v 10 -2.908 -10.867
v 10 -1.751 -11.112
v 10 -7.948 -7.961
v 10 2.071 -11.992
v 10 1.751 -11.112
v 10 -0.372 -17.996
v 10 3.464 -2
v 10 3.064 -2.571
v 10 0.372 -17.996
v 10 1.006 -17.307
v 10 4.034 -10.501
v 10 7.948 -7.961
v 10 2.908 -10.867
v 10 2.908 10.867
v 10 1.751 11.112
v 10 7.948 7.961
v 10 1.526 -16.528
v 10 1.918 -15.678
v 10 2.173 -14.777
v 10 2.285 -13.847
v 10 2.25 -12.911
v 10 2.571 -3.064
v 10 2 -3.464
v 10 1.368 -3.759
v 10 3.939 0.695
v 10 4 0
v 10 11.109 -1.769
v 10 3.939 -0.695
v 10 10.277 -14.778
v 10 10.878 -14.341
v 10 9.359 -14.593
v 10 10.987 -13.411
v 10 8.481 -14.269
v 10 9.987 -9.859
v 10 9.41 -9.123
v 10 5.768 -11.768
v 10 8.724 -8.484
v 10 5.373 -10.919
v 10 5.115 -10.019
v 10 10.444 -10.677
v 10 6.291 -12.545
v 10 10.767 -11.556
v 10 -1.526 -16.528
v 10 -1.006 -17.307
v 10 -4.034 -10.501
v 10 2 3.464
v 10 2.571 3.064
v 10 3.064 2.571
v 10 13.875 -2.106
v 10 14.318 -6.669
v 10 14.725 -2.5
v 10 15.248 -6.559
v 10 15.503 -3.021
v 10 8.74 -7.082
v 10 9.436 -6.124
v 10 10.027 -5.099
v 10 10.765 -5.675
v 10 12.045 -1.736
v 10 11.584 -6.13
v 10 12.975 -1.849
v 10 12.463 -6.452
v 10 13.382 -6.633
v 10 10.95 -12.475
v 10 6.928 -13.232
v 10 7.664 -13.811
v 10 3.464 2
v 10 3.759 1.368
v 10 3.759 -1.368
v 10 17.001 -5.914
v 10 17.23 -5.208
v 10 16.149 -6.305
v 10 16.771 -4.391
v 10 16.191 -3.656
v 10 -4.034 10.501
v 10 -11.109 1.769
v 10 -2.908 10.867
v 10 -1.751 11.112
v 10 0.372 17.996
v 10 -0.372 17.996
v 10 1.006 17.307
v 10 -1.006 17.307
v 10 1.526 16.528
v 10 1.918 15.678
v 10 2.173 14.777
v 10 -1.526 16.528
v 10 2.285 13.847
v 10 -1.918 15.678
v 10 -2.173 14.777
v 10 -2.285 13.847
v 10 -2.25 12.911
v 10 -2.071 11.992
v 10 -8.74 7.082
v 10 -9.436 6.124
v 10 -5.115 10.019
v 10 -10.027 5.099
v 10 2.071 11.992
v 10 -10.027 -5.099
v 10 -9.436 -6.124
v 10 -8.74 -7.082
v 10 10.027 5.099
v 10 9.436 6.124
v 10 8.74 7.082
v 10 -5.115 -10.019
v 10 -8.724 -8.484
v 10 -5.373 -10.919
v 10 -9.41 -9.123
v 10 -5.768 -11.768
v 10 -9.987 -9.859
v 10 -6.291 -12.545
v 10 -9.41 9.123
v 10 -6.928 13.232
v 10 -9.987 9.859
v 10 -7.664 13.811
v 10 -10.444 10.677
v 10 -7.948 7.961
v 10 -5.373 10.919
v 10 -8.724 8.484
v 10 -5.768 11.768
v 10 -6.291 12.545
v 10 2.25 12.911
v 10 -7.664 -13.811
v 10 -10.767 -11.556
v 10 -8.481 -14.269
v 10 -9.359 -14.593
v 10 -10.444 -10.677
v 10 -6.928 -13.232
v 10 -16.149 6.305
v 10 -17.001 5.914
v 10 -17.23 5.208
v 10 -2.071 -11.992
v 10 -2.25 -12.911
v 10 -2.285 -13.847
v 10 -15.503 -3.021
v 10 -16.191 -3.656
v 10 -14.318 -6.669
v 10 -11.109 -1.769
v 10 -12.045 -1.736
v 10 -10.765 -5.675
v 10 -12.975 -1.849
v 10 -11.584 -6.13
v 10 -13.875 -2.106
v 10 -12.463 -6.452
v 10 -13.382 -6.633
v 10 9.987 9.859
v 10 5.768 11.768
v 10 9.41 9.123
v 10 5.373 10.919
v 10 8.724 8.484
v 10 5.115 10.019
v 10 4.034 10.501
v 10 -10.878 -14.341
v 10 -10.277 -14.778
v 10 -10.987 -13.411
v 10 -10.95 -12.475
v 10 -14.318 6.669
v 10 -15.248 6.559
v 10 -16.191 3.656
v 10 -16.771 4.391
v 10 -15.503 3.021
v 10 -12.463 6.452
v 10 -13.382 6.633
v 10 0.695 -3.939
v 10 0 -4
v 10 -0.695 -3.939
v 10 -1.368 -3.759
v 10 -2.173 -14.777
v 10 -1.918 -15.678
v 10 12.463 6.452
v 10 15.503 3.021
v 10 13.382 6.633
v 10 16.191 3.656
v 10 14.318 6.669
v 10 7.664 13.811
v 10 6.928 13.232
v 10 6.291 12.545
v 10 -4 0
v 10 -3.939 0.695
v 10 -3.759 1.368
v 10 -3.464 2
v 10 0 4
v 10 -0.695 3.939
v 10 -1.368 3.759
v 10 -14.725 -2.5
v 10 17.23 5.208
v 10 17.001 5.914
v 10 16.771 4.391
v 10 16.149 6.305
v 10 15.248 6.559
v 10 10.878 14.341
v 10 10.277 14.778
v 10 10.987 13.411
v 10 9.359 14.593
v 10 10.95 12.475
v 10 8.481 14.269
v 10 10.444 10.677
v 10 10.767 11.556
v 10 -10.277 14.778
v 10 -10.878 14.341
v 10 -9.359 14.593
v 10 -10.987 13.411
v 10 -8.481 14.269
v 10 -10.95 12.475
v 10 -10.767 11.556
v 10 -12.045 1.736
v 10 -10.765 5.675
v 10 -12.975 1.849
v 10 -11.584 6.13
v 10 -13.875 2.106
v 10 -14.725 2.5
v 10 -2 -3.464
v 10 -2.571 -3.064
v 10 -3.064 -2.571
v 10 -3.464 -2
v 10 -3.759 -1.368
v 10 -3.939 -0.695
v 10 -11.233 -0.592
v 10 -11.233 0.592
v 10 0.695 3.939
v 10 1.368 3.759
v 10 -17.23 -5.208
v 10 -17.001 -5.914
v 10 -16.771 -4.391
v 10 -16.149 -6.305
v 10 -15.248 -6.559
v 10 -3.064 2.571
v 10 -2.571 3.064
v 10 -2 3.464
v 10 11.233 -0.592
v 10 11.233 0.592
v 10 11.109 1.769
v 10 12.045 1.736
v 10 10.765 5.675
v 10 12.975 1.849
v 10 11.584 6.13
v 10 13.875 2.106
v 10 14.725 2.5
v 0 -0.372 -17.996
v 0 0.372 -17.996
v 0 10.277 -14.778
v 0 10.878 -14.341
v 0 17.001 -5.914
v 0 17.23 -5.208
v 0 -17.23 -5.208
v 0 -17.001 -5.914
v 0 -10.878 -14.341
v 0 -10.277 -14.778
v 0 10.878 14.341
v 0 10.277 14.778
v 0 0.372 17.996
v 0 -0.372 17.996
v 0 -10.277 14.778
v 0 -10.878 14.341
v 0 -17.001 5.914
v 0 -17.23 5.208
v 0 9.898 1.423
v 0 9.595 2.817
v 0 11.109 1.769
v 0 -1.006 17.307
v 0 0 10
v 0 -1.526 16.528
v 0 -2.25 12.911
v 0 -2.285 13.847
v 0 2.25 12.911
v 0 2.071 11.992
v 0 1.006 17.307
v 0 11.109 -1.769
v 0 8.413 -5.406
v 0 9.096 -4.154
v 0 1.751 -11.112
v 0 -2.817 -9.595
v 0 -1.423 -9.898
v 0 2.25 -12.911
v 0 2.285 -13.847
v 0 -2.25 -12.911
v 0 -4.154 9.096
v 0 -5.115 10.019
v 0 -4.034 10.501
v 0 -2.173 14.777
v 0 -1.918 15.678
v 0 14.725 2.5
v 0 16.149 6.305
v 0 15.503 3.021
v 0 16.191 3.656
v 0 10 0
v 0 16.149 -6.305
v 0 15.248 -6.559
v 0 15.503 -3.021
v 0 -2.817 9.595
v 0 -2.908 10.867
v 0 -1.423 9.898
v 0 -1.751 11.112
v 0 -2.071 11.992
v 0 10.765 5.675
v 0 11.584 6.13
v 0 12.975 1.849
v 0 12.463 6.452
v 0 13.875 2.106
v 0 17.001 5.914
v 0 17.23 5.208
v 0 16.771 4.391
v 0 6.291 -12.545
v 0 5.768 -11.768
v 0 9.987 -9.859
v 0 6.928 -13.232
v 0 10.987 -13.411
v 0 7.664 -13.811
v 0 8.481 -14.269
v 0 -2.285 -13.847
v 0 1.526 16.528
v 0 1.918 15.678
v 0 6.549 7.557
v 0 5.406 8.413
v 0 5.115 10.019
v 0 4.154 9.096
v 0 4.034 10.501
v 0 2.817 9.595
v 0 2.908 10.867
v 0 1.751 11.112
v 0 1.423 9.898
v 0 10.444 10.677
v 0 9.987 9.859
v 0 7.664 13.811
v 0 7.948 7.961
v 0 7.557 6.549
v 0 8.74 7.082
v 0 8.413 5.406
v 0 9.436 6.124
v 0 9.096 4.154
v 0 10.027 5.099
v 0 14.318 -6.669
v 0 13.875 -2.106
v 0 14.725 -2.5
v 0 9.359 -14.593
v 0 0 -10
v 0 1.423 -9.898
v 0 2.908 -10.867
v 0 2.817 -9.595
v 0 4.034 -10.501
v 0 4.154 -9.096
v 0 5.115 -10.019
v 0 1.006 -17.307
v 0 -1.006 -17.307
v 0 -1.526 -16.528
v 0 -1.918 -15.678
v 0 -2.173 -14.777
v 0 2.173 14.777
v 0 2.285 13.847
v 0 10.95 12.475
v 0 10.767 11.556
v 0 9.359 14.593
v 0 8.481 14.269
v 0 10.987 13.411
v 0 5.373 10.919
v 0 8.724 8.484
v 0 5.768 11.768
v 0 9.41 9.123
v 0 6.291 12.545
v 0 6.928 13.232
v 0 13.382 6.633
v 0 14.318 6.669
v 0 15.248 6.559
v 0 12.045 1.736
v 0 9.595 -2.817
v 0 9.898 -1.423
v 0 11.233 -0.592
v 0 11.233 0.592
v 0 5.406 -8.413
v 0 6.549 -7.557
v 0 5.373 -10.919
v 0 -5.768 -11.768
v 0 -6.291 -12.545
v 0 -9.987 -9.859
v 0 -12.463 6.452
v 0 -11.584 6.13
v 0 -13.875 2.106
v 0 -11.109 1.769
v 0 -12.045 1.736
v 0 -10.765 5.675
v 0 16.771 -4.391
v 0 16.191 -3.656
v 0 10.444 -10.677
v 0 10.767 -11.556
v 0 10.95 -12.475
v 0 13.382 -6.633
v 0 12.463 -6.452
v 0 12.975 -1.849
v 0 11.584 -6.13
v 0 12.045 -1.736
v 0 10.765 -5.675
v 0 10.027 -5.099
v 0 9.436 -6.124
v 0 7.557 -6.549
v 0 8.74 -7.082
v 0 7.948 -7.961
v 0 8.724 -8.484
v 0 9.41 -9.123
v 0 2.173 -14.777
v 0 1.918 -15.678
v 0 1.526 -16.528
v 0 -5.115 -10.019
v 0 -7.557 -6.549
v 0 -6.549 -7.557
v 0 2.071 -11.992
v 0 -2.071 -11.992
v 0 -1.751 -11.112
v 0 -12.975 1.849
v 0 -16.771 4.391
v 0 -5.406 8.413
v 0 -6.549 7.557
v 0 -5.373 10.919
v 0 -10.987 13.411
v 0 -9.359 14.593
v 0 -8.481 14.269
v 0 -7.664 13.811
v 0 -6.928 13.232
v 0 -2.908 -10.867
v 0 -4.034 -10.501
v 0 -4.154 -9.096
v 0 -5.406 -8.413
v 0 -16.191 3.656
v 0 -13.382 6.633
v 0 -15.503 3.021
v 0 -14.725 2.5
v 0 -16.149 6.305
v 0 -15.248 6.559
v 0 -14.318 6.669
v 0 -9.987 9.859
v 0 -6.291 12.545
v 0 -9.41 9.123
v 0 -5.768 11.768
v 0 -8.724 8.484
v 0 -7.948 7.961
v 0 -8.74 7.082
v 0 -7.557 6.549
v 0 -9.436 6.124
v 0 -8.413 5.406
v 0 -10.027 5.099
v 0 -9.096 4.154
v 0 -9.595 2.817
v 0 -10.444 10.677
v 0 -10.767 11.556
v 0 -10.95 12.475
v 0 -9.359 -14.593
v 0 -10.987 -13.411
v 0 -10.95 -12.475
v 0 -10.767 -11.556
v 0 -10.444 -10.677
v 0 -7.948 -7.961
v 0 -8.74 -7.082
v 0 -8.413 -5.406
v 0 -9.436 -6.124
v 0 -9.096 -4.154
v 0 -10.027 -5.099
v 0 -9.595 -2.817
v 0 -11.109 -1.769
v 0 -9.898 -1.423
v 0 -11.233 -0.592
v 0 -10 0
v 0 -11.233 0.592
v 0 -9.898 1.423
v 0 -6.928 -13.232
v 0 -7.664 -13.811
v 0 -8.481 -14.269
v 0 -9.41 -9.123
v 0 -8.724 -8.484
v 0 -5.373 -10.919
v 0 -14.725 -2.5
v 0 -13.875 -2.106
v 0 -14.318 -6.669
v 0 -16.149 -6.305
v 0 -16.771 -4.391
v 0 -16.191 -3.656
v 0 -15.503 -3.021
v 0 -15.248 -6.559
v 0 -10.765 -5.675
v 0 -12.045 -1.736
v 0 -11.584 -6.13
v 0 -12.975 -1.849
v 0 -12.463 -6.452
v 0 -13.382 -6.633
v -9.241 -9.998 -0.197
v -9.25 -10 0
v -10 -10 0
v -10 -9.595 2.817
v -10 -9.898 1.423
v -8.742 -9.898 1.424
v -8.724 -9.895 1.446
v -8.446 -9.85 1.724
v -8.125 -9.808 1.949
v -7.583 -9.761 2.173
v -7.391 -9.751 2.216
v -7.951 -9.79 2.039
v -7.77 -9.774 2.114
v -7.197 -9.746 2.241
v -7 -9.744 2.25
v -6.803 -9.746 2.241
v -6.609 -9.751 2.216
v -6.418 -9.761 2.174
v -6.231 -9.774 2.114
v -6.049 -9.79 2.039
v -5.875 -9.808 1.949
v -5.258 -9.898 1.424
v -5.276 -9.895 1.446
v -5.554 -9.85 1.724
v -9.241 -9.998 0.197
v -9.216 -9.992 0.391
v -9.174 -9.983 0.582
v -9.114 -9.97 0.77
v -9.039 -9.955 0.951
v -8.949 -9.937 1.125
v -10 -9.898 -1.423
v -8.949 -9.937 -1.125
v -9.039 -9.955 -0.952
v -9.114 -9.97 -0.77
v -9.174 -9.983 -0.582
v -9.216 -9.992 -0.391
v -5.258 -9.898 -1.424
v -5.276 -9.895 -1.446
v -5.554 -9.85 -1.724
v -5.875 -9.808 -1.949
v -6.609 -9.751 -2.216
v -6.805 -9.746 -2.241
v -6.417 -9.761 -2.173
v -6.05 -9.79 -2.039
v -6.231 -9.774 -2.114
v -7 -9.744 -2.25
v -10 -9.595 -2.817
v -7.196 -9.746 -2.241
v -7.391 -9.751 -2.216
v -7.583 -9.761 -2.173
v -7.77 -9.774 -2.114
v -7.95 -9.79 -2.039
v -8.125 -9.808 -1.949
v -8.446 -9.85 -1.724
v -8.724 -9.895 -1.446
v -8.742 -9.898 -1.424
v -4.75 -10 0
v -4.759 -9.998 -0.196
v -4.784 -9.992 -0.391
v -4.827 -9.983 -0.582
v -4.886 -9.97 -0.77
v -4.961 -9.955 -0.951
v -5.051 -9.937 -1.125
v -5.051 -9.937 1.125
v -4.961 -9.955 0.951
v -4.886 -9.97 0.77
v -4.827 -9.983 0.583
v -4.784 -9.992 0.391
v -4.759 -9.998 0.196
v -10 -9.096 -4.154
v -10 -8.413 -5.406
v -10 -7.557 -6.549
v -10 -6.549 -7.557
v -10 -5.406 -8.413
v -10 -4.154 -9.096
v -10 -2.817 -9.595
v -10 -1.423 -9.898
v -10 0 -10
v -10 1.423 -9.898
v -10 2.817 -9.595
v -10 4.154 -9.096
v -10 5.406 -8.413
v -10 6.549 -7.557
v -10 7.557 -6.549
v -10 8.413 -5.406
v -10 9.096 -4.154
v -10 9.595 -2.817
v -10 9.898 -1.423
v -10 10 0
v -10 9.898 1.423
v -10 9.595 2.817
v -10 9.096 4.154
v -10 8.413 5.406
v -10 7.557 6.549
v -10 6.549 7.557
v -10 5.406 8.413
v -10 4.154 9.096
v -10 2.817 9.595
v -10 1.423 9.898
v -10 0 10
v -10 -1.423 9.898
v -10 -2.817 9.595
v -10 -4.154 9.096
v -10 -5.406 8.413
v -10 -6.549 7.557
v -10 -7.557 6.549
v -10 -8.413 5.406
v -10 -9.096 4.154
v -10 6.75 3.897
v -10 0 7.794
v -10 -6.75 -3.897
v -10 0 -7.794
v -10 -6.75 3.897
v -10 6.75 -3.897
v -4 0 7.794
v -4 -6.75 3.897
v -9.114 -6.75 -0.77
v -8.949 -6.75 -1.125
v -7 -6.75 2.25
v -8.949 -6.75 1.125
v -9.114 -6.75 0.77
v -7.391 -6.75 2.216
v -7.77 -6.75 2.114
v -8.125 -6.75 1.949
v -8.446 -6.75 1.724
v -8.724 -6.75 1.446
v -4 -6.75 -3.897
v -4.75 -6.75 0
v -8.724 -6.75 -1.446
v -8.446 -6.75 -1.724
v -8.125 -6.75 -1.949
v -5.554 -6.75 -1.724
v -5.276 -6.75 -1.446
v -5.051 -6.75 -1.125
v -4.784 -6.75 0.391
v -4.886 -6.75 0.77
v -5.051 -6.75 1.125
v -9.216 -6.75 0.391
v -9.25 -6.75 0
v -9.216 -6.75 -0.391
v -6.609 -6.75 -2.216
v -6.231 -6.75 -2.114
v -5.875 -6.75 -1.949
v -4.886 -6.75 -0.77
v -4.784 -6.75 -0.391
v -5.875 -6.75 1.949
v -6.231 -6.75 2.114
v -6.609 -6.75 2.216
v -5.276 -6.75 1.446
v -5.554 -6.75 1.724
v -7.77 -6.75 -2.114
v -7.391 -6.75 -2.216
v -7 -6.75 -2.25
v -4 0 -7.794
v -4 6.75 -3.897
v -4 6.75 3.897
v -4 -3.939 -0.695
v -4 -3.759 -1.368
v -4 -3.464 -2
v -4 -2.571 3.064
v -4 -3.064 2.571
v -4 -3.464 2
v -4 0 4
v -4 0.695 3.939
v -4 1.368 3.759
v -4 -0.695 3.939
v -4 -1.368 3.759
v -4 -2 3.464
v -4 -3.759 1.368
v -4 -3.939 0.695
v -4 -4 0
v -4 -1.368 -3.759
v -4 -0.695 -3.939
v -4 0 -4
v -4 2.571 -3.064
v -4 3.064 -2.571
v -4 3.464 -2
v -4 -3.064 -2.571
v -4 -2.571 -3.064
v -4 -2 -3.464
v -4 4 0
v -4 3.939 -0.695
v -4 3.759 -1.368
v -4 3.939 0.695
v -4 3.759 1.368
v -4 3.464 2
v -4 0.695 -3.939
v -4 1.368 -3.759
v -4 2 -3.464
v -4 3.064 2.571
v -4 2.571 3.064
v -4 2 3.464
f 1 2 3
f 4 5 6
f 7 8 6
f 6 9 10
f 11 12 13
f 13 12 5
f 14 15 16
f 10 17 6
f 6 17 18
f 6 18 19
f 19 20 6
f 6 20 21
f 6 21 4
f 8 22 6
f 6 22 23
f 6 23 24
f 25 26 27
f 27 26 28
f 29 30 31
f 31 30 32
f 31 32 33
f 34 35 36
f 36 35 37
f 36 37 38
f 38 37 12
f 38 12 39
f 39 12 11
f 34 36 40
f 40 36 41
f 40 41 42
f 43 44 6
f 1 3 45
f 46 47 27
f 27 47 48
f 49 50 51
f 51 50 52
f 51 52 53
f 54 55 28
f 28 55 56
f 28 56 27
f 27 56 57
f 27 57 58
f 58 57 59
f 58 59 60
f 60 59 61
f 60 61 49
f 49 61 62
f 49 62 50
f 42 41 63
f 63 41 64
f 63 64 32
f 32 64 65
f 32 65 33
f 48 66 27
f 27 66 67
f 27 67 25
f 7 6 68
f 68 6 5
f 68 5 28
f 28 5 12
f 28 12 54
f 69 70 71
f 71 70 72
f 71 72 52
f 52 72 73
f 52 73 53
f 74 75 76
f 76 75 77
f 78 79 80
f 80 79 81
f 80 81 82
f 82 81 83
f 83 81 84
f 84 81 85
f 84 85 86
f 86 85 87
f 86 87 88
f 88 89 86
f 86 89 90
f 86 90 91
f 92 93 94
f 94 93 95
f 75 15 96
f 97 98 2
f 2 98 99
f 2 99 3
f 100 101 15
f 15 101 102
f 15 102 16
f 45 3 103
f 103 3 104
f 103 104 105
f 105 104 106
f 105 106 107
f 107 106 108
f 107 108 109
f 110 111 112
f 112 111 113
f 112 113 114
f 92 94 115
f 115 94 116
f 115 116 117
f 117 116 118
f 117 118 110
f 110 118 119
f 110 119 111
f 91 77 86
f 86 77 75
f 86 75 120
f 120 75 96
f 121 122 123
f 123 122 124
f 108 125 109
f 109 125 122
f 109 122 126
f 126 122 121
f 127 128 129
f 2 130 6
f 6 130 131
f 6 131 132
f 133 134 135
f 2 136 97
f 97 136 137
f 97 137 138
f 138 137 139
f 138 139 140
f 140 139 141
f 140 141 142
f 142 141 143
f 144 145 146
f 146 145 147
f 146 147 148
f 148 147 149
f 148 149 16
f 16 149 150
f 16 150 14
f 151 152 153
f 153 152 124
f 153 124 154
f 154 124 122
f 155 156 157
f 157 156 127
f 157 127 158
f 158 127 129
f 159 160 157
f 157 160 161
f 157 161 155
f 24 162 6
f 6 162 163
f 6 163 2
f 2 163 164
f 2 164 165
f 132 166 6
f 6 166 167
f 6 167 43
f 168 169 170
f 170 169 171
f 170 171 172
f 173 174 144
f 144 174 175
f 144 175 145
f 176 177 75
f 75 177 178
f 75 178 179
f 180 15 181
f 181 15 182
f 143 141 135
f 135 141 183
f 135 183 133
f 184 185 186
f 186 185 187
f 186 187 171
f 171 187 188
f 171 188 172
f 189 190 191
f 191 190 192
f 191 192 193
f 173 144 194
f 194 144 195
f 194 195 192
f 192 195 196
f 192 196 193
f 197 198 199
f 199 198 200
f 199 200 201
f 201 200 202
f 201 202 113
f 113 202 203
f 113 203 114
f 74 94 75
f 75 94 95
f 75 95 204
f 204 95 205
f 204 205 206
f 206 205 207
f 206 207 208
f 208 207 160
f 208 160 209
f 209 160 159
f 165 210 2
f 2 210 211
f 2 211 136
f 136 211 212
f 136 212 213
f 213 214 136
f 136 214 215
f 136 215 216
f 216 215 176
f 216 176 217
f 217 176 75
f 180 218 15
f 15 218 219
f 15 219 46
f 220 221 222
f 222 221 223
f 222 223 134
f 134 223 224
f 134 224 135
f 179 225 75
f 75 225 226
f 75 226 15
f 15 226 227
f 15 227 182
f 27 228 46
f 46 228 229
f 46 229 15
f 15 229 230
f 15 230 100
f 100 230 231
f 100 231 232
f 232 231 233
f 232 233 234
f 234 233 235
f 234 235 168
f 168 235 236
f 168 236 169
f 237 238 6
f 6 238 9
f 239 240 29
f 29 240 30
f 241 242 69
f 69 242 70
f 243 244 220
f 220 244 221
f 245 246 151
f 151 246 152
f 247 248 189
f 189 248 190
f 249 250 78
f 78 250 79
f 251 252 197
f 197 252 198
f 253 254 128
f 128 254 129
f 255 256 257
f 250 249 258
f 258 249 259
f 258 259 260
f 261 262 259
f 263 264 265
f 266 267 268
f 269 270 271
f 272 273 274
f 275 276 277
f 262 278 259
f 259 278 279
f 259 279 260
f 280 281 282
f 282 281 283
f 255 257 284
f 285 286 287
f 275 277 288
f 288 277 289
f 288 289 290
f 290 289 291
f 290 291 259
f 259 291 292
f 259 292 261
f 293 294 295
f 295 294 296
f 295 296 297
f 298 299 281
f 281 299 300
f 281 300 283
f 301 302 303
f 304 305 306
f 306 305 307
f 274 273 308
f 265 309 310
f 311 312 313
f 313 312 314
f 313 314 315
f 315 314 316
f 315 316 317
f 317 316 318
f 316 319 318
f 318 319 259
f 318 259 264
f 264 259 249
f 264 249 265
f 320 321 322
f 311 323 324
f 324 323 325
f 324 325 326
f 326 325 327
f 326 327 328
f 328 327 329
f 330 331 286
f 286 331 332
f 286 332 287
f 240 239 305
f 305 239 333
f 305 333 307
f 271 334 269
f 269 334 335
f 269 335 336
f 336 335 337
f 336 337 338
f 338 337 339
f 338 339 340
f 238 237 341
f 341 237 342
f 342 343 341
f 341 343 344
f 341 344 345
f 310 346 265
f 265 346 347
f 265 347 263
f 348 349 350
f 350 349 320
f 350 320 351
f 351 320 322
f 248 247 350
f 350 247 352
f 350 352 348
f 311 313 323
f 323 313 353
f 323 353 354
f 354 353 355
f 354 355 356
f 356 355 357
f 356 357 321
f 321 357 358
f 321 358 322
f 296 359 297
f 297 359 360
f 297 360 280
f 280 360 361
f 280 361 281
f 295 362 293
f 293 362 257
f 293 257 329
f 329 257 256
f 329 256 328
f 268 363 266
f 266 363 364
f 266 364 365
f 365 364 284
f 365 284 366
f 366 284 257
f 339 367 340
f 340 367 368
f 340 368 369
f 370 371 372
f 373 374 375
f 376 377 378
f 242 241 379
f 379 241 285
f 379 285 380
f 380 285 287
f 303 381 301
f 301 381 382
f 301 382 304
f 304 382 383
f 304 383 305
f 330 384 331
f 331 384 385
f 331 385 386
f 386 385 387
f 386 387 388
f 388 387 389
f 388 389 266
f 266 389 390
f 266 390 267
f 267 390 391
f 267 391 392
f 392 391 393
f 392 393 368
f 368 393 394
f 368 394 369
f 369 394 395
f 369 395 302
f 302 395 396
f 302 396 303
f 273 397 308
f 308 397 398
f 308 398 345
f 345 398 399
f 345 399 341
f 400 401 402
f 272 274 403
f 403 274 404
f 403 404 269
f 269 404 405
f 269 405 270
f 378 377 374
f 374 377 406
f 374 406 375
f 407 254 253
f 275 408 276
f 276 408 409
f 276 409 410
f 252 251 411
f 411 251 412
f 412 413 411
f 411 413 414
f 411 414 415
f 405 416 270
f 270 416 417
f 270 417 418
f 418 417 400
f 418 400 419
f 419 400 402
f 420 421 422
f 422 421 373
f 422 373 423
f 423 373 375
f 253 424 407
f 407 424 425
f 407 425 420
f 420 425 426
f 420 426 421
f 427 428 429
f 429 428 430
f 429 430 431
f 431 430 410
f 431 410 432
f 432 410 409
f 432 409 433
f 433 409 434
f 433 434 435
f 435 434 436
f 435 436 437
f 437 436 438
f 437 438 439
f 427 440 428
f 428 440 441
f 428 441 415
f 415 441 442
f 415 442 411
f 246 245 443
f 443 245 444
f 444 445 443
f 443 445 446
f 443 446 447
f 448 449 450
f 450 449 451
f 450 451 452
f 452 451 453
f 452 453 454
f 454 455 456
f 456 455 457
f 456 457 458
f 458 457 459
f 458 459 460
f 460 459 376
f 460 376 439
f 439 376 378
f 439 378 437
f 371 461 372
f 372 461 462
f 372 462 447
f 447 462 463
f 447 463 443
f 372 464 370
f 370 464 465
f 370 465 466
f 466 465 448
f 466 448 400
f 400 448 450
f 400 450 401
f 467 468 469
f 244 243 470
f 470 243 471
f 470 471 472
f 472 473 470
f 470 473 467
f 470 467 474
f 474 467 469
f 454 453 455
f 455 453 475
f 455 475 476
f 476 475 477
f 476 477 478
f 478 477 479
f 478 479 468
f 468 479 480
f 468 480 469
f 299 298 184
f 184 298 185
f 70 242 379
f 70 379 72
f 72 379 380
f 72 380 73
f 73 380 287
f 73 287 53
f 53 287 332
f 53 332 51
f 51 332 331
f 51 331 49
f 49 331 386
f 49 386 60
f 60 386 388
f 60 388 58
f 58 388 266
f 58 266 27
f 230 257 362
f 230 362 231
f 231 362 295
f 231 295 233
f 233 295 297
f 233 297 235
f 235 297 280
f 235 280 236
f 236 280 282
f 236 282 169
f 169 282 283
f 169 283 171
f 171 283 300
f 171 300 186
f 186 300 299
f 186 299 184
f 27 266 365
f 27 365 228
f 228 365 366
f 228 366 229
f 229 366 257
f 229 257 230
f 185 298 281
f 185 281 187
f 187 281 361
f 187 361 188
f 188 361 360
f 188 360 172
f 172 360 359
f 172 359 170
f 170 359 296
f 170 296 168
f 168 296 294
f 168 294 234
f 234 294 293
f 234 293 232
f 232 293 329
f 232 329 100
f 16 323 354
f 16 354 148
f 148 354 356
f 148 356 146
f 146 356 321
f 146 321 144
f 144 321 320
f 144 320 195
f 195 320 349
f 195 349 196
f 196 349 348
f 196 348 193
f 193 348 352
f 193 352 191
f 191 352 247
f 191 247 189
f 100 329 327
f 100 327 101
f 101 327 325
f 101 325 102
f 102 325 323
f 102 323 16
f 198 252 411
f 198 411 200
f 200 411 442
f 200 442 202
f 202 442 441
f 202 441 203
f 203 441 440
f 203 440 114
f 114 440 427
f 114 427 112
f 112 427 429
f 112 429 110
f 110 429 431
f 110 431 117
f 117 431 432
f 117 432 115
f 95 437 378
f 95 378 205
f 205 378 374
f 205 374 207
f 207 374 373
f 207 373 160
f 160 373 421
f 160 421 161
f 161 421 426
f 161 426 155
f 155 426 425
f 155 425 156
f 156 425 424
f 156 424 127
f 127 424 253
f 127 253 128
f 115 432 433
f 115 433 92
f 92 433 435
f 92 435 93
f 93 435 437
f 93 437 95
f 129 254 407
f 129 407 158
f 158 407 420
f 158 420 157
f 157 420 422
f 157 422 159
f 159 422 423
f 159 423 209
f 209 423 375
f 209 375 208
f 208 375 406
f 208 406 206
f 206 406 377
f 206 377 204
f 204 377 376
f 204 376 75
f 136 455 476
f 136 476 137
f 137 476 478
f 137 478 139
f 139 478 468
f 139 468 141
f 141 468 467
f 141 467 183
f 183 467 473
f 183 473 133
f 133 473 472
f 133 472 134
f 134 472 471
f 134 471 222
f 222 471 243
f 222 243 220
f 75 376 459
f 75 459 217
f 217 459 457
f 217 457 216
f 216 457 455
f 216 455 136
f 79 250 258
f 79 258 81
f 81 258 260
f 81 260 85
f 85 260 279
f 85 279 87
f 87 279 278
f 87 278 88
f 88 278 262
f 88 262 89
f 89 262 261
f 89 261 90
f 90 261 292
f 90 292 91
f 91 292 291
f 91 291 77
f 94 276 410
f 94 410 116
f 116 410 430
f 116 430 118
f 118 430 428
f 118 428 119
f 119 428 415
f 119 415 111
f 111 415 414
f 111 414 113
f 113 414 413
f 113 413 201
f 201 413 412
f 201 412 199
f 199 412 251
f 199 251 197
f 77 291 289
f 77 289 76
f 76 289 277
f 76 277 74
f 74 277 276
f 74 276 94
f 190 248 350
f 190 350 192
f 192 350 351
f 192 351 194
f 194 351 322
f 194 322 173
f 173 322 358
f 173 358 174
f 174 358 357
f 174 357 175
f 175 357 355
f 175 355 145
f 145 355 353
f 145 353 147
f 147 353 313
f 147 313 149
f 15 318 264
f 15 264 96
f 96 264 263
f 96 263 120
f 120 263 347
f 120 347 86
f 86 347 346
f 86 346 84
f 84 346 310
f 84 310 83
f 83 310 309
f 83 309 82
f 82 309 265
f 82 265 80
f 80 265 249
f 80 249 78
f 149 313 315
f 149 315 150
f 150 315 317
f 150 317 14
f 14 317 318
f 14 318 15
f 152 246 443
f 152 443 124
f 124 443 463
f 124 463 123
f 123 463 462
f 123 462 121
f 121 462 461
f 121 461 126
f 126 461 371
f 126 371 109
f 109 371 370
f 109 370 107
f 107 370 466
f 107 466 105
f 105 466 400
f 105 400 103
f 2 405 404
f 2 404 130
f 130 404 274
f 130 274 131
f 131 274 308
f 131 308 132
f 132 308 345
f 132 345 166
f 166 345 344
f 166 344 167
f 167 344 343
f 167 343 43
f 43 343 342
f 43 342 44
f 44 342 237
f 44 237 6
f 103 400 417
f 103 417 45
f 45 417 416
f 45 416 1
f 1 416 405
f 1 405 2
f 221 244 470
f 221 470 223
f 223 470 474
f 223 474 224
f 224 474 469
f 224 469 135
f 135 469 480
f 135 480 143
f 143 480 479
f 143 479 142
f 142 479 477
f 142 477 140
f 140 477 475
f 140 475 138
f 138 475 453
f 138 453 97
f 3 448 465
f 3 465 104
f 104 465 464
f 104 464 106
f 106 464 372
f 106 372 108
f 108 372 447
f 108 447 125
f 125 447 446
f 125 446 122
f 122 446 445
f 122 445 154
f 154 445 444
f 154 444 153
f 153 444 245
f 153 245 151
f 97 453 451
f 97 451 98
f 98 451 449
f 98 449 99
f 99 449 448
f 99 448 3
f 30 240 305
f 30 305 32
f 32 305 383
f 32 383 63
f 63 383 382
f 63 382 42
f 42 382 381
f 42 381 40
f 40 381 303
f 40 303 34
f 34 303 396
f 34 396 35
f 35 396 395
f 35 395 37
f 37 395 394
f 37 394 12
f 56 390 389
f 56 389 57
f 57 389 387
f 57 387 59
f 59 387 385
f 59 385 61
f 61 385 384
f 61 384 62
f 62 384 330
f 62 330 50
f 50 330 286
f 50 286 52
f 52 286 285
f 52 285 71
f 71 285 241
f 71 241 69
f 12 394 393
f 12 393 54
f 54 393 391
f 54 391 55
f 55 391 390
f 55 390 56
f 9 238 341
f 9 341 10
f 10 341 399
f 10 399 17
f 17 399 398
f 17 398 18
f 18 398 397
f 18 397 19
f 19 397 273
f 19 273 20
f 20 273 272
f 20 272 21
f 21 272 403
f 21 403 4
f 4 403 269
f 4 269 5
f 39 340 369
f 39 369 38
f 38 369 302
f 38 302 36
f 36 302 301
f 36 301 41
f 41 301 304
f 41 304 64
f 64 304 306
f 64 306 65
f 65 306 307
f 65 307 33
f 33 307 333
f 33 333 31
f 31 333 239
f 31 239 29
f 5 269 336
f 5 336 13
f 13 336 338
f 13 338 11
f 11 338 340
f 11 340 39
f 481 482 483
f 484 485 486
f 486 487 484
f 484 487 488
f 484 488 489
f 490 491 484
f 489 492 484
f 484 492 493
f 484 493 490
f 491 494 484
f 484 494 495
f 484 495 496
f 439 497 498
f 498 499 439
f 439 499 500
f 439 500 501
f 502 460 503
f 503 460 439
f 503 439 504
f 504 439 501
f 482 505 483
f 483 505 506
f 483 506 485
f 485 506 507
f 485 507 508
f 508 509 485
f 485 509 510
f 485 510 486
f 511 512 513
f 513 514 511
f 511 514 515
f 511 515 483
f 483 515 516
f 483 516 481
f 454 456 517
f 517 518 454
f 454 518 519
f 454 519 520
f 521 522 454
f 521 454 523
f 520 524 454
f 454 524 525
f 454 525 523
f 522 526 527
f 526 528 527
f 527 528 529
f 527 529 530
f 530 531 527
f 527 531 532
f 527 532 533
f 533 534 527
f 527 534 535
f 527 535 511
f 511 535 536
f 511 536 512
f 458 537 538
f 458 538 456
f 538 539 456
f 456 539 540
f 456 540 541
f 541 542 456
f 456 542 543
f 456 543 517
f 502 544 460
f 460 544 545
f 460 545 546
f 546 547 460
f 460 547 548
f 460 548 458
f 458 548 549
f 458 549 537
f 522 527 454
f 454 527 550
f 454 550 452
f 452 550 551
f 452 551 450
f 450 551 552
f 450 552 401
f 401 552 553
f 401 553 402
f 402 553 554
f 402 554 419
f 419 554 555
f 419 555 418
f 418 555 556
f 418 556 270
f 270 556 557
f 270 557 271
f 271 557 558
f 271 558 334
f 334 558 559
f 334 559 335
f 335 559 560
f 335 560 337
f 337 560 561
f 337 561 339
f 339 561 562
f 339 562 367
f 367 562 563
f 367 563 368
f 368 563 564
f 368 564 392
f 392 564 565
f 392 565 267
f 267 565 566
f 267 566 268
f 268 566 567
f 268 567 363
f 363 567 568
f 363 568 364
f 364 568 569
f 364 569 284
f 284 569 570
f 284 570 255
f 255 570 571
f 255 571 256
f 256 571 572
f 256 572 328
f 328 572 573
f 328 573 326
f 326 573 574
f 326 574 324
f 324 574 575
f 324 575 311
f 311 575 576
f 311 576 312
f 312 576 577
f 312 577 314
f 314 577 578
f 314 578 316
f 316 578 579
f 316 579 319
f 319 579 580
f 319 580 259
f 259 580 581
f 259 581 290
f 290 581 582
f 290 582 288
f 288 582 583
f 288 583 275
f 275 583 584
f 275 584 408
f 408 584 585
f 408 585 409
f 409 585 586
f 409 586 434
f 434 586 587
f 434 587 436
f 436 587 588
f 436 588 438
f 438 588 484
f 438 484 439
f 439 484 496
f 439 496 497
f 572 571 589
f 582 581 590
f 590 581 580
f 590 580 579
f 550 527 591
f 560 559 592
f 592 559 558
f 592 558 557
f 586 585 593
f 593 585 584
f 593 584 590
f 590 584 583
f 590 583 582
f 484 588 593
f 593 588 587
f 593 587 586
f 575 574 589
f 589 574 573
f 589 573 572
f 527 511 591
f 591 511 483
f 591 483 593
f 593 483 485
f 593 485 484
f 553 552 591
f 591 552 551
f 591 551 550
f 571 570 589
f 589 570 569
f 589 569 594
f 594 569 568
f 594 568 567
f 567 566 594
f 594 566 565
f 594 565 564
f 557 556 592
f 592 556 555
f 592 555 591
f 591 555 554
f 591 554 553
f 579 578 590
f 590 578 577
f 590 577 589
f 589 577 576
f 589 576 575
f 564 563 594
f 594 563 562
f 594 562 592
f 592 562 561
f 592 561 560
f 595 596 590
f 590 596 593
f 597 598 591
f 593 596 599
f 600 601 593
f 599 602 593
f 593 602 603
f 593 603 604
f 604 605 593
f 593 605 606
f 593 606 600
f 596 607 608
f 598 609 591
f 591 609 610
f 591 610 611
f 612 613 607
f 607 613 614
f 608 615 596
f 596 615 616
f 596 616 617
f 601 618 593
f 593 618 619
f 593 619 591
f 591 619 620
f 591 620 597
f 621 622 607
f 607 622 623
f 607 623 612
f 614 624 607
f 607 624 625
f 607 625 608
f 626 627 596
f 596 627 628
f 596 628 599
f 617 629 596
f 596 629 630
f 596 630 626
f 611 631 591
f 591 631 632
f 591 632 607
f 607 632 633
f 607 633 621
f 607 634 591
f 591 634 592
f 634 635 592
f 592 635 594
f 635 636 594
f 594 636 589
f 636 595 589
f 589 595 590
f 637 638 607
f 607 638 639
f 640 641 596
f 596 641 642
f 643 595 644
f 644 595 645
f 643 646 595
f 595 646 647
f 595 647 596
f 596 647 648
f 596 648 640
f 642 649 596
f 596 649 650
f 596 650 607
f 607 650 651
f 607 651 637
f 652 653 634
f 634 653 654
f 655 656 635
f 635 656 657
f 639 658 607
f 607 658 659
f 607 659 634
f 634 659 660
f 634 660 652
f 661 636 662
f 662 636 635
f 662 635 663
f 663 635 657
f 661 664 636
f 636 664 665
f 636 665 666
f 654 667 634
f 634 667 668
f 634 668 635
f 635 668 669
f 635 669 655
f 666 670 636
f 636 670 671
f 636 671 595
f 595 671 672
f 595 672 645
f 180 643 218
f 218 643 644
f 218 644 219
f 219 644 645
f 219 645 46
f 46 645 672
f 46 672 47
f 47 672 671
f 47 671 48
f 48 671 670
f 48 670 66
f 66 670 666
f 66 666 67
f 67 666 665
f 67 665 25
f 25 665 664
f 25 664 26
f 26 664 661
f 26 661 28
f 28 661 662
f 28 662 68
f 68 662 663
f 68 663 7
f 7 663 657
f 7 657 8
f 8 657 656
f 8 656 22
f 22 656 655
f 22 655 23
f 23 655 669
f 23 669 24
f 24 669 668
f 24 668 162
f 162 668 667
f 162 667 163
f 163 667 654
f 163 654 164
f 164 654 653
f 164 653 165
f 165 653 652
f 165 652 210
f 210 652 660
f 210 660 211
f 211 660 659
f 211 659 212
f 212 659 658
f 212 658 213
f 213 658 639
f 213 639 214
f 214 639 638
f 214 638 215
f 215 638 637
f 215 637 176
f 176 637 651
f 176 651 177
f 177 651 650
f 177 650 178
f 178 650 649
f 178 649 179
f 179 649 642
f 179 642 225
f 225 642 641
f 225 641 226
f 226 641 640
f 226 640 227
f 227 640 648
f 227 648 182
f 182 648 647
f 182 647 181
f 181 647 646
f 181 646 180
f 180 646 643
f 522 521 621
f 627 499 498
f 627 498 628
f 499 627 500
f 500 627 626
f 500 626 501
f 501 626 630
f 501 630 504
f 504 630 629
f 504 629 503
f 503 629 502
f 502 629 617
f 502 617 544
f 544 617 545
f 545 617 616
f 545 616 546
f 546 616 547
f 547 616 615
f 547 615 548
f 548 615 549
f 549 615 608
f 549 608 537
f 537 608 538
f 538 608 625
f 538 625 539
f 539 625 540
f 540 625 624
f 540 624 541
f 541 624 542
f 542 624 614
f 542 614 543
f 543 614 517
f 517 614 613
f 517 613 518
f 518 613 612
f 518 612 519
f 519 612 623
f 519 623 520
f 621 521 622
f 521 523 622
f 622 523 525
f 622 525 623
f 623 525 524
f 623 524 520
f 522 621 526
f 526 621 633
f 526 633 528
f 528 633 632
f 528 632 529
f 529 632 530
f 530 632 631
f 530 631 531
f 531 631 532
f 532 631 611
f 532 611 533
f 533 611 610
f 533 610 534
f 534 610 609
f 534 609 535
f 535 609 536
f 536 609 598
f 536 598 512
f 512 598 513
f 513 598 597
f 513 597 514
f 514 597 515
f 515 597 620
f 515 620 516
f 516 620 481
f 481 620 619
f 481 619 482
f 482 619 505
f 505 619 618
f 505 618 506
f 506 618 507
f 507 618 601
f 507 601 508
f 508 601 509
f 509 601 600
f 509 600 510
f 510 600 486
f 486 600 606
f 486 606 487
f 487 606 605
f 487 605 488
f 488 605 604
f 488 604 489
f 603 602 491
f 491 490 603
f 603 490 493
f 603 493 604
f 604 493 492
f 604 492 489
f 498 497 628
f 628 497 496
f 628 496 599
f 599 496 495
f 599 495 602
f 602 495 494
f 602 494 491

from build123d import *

# Parameters (mm, degrees)
BASPROSKE_W        = 10
BASPROSKE_H        = 18
TOOTHCUT_DEPTH     = 28.349588662
TEETHCUTS_COUNT    = 10
TEETHCUTS_ANGLE    = 324
HUBNEAONESKE_R     = 10
HUBNEARONE_DEPTH   = 10.0000508
BORSKE_R           = 3.5
BORE_DEPTH         = 20.0000508
CUT_EXTRUDE1_DEPTH = 6
SKETCH2_R          = 4
CUT_EXTRUDE2_DEPTH = 29.581121206
SKETCH3_R          = 2.25
CUT_EXTRUDE3_DEPTH = 27.8492101


with BuildPart() as part:
    # BasProSke → Base-Revolve (revolve)
    with BuildSketch(Plane(origin=(0, 0, 0), x_dir=(1, 0, 0), z_dir=(0, 1, 0)), mode=Mode.PRIVATE) as base_revolve_sk:
        with Locations((5, 9)):
            Rectangle(BASPROSKE_W, BASPROSKE_H)
    revolve(base_revolve_sk.sketch.rotate(Axis((-10, 0, 0), (1, 0, 0)), 180), axis=Axis((-10, 0, 0), (1, 0, 0)))

    # TooCutSke → ToothCut (cut, through all)
    with BuildSketch(Plane(origin=(0, 0, 0), x_dir=(0, 0, -1), z_dir=(1, 0, 0))):
        with BuildLine():
            ThreePointArc((1.768949054, 11.109042274), (0, 11.249), (-1.768949054, 11.109042274))
            ThreePointArc((-1.768949054, 11.109042274), (-2.508977513, 14.741789417), (-5.242576524, 17.246171649))
            ThreePointArc((-5.242576524, 17.246171649), (0, 18.0254), (5.242576524, 17.246171649))
            ThreePointArc((5.242576524, 17.246171649), (2.508977513, 14.741789417), (1.768949054, 11.109042274))
        make_face()
    toothcut = extrude(amount=TOOTHCUT_DEPTH, mode=Mode.SUBTRACT)

    # TeethCuts: ToothCut ×10 about axis
    teethcuts_axis = Axis((-10, 0, 0), (1, 0, 0))
    for i in range(1, TEETHCUTS_COUNT):
        add(toothcut.rotate(teethcuts_axis, i * TEETHCUTS_ANGLE / (TEETHCUTS_COUNT - 1)), mode=Mode.SUBTRACT)

    # HubNeaOneSke → HubNearOne (add)
    with BuildSketch(Plane.ZY):
        with Locations(Location((0, 0, 0), (0, 0, 180))):
            Circle(HUBNEAONESKE_R)
    extrude(amount=HUBNEARONE_DEPTH)

    # BorSke → Bore (cut, symmetric)
    with BuildSketch(Plane(origin=(0, 0, 0), x_dir=(0, 0, -1), z_dir=(1, 0, 0))):
        with Locations(Location((0, 0, 0), (0, 0, 180))):
            Circle(BORSKE_R)
    extrude(amount=BORE_DEPTH, both=True, mode=Mode.SUBTRACT)

    # Sketch1 → Cut-Extrude1 (cut)
    with BuildSketch(Plane.ZY.offset(10.0000508)):
        Polygon((7.794228634, 0), (3.897114317, 6.75), (-3.897114317, 6.75), (-7.794228634, 0), (-3.897114317, -6.75), (3.897114317, -6.75), align=None)
    extrude(amount=-CUT_EXTRUDE1_DEPTH, mode=Mode.SUBTRACT)

    # Sketch2 → Cut-Extrude2 (cut, through all)
    with BuildSketch(Plane.ZY.offset(4.0000508)):
        Circle(SKETCH2_R)
    extrude(amount=-CUT_EXTRUDE2_DEPTH, mode=Mode.SUBTRACT)

    # Sketch3 → Cut-Extrude3 (cut, through all)
    with BuildSketch(Plane(origin=(0, 0, 0), x_dir=(1, 0, 0), z_dir=(0, 1, 0))):
        with Locations(Location((-7.0000508, 0, 0), (0, 0, 270))):
            Circle(SKETCH3_R)
    extrude(amount=-CUT_EXTRUDE3_DEPTH, mode=Mode.SUBTRACT)


solid = part.part
